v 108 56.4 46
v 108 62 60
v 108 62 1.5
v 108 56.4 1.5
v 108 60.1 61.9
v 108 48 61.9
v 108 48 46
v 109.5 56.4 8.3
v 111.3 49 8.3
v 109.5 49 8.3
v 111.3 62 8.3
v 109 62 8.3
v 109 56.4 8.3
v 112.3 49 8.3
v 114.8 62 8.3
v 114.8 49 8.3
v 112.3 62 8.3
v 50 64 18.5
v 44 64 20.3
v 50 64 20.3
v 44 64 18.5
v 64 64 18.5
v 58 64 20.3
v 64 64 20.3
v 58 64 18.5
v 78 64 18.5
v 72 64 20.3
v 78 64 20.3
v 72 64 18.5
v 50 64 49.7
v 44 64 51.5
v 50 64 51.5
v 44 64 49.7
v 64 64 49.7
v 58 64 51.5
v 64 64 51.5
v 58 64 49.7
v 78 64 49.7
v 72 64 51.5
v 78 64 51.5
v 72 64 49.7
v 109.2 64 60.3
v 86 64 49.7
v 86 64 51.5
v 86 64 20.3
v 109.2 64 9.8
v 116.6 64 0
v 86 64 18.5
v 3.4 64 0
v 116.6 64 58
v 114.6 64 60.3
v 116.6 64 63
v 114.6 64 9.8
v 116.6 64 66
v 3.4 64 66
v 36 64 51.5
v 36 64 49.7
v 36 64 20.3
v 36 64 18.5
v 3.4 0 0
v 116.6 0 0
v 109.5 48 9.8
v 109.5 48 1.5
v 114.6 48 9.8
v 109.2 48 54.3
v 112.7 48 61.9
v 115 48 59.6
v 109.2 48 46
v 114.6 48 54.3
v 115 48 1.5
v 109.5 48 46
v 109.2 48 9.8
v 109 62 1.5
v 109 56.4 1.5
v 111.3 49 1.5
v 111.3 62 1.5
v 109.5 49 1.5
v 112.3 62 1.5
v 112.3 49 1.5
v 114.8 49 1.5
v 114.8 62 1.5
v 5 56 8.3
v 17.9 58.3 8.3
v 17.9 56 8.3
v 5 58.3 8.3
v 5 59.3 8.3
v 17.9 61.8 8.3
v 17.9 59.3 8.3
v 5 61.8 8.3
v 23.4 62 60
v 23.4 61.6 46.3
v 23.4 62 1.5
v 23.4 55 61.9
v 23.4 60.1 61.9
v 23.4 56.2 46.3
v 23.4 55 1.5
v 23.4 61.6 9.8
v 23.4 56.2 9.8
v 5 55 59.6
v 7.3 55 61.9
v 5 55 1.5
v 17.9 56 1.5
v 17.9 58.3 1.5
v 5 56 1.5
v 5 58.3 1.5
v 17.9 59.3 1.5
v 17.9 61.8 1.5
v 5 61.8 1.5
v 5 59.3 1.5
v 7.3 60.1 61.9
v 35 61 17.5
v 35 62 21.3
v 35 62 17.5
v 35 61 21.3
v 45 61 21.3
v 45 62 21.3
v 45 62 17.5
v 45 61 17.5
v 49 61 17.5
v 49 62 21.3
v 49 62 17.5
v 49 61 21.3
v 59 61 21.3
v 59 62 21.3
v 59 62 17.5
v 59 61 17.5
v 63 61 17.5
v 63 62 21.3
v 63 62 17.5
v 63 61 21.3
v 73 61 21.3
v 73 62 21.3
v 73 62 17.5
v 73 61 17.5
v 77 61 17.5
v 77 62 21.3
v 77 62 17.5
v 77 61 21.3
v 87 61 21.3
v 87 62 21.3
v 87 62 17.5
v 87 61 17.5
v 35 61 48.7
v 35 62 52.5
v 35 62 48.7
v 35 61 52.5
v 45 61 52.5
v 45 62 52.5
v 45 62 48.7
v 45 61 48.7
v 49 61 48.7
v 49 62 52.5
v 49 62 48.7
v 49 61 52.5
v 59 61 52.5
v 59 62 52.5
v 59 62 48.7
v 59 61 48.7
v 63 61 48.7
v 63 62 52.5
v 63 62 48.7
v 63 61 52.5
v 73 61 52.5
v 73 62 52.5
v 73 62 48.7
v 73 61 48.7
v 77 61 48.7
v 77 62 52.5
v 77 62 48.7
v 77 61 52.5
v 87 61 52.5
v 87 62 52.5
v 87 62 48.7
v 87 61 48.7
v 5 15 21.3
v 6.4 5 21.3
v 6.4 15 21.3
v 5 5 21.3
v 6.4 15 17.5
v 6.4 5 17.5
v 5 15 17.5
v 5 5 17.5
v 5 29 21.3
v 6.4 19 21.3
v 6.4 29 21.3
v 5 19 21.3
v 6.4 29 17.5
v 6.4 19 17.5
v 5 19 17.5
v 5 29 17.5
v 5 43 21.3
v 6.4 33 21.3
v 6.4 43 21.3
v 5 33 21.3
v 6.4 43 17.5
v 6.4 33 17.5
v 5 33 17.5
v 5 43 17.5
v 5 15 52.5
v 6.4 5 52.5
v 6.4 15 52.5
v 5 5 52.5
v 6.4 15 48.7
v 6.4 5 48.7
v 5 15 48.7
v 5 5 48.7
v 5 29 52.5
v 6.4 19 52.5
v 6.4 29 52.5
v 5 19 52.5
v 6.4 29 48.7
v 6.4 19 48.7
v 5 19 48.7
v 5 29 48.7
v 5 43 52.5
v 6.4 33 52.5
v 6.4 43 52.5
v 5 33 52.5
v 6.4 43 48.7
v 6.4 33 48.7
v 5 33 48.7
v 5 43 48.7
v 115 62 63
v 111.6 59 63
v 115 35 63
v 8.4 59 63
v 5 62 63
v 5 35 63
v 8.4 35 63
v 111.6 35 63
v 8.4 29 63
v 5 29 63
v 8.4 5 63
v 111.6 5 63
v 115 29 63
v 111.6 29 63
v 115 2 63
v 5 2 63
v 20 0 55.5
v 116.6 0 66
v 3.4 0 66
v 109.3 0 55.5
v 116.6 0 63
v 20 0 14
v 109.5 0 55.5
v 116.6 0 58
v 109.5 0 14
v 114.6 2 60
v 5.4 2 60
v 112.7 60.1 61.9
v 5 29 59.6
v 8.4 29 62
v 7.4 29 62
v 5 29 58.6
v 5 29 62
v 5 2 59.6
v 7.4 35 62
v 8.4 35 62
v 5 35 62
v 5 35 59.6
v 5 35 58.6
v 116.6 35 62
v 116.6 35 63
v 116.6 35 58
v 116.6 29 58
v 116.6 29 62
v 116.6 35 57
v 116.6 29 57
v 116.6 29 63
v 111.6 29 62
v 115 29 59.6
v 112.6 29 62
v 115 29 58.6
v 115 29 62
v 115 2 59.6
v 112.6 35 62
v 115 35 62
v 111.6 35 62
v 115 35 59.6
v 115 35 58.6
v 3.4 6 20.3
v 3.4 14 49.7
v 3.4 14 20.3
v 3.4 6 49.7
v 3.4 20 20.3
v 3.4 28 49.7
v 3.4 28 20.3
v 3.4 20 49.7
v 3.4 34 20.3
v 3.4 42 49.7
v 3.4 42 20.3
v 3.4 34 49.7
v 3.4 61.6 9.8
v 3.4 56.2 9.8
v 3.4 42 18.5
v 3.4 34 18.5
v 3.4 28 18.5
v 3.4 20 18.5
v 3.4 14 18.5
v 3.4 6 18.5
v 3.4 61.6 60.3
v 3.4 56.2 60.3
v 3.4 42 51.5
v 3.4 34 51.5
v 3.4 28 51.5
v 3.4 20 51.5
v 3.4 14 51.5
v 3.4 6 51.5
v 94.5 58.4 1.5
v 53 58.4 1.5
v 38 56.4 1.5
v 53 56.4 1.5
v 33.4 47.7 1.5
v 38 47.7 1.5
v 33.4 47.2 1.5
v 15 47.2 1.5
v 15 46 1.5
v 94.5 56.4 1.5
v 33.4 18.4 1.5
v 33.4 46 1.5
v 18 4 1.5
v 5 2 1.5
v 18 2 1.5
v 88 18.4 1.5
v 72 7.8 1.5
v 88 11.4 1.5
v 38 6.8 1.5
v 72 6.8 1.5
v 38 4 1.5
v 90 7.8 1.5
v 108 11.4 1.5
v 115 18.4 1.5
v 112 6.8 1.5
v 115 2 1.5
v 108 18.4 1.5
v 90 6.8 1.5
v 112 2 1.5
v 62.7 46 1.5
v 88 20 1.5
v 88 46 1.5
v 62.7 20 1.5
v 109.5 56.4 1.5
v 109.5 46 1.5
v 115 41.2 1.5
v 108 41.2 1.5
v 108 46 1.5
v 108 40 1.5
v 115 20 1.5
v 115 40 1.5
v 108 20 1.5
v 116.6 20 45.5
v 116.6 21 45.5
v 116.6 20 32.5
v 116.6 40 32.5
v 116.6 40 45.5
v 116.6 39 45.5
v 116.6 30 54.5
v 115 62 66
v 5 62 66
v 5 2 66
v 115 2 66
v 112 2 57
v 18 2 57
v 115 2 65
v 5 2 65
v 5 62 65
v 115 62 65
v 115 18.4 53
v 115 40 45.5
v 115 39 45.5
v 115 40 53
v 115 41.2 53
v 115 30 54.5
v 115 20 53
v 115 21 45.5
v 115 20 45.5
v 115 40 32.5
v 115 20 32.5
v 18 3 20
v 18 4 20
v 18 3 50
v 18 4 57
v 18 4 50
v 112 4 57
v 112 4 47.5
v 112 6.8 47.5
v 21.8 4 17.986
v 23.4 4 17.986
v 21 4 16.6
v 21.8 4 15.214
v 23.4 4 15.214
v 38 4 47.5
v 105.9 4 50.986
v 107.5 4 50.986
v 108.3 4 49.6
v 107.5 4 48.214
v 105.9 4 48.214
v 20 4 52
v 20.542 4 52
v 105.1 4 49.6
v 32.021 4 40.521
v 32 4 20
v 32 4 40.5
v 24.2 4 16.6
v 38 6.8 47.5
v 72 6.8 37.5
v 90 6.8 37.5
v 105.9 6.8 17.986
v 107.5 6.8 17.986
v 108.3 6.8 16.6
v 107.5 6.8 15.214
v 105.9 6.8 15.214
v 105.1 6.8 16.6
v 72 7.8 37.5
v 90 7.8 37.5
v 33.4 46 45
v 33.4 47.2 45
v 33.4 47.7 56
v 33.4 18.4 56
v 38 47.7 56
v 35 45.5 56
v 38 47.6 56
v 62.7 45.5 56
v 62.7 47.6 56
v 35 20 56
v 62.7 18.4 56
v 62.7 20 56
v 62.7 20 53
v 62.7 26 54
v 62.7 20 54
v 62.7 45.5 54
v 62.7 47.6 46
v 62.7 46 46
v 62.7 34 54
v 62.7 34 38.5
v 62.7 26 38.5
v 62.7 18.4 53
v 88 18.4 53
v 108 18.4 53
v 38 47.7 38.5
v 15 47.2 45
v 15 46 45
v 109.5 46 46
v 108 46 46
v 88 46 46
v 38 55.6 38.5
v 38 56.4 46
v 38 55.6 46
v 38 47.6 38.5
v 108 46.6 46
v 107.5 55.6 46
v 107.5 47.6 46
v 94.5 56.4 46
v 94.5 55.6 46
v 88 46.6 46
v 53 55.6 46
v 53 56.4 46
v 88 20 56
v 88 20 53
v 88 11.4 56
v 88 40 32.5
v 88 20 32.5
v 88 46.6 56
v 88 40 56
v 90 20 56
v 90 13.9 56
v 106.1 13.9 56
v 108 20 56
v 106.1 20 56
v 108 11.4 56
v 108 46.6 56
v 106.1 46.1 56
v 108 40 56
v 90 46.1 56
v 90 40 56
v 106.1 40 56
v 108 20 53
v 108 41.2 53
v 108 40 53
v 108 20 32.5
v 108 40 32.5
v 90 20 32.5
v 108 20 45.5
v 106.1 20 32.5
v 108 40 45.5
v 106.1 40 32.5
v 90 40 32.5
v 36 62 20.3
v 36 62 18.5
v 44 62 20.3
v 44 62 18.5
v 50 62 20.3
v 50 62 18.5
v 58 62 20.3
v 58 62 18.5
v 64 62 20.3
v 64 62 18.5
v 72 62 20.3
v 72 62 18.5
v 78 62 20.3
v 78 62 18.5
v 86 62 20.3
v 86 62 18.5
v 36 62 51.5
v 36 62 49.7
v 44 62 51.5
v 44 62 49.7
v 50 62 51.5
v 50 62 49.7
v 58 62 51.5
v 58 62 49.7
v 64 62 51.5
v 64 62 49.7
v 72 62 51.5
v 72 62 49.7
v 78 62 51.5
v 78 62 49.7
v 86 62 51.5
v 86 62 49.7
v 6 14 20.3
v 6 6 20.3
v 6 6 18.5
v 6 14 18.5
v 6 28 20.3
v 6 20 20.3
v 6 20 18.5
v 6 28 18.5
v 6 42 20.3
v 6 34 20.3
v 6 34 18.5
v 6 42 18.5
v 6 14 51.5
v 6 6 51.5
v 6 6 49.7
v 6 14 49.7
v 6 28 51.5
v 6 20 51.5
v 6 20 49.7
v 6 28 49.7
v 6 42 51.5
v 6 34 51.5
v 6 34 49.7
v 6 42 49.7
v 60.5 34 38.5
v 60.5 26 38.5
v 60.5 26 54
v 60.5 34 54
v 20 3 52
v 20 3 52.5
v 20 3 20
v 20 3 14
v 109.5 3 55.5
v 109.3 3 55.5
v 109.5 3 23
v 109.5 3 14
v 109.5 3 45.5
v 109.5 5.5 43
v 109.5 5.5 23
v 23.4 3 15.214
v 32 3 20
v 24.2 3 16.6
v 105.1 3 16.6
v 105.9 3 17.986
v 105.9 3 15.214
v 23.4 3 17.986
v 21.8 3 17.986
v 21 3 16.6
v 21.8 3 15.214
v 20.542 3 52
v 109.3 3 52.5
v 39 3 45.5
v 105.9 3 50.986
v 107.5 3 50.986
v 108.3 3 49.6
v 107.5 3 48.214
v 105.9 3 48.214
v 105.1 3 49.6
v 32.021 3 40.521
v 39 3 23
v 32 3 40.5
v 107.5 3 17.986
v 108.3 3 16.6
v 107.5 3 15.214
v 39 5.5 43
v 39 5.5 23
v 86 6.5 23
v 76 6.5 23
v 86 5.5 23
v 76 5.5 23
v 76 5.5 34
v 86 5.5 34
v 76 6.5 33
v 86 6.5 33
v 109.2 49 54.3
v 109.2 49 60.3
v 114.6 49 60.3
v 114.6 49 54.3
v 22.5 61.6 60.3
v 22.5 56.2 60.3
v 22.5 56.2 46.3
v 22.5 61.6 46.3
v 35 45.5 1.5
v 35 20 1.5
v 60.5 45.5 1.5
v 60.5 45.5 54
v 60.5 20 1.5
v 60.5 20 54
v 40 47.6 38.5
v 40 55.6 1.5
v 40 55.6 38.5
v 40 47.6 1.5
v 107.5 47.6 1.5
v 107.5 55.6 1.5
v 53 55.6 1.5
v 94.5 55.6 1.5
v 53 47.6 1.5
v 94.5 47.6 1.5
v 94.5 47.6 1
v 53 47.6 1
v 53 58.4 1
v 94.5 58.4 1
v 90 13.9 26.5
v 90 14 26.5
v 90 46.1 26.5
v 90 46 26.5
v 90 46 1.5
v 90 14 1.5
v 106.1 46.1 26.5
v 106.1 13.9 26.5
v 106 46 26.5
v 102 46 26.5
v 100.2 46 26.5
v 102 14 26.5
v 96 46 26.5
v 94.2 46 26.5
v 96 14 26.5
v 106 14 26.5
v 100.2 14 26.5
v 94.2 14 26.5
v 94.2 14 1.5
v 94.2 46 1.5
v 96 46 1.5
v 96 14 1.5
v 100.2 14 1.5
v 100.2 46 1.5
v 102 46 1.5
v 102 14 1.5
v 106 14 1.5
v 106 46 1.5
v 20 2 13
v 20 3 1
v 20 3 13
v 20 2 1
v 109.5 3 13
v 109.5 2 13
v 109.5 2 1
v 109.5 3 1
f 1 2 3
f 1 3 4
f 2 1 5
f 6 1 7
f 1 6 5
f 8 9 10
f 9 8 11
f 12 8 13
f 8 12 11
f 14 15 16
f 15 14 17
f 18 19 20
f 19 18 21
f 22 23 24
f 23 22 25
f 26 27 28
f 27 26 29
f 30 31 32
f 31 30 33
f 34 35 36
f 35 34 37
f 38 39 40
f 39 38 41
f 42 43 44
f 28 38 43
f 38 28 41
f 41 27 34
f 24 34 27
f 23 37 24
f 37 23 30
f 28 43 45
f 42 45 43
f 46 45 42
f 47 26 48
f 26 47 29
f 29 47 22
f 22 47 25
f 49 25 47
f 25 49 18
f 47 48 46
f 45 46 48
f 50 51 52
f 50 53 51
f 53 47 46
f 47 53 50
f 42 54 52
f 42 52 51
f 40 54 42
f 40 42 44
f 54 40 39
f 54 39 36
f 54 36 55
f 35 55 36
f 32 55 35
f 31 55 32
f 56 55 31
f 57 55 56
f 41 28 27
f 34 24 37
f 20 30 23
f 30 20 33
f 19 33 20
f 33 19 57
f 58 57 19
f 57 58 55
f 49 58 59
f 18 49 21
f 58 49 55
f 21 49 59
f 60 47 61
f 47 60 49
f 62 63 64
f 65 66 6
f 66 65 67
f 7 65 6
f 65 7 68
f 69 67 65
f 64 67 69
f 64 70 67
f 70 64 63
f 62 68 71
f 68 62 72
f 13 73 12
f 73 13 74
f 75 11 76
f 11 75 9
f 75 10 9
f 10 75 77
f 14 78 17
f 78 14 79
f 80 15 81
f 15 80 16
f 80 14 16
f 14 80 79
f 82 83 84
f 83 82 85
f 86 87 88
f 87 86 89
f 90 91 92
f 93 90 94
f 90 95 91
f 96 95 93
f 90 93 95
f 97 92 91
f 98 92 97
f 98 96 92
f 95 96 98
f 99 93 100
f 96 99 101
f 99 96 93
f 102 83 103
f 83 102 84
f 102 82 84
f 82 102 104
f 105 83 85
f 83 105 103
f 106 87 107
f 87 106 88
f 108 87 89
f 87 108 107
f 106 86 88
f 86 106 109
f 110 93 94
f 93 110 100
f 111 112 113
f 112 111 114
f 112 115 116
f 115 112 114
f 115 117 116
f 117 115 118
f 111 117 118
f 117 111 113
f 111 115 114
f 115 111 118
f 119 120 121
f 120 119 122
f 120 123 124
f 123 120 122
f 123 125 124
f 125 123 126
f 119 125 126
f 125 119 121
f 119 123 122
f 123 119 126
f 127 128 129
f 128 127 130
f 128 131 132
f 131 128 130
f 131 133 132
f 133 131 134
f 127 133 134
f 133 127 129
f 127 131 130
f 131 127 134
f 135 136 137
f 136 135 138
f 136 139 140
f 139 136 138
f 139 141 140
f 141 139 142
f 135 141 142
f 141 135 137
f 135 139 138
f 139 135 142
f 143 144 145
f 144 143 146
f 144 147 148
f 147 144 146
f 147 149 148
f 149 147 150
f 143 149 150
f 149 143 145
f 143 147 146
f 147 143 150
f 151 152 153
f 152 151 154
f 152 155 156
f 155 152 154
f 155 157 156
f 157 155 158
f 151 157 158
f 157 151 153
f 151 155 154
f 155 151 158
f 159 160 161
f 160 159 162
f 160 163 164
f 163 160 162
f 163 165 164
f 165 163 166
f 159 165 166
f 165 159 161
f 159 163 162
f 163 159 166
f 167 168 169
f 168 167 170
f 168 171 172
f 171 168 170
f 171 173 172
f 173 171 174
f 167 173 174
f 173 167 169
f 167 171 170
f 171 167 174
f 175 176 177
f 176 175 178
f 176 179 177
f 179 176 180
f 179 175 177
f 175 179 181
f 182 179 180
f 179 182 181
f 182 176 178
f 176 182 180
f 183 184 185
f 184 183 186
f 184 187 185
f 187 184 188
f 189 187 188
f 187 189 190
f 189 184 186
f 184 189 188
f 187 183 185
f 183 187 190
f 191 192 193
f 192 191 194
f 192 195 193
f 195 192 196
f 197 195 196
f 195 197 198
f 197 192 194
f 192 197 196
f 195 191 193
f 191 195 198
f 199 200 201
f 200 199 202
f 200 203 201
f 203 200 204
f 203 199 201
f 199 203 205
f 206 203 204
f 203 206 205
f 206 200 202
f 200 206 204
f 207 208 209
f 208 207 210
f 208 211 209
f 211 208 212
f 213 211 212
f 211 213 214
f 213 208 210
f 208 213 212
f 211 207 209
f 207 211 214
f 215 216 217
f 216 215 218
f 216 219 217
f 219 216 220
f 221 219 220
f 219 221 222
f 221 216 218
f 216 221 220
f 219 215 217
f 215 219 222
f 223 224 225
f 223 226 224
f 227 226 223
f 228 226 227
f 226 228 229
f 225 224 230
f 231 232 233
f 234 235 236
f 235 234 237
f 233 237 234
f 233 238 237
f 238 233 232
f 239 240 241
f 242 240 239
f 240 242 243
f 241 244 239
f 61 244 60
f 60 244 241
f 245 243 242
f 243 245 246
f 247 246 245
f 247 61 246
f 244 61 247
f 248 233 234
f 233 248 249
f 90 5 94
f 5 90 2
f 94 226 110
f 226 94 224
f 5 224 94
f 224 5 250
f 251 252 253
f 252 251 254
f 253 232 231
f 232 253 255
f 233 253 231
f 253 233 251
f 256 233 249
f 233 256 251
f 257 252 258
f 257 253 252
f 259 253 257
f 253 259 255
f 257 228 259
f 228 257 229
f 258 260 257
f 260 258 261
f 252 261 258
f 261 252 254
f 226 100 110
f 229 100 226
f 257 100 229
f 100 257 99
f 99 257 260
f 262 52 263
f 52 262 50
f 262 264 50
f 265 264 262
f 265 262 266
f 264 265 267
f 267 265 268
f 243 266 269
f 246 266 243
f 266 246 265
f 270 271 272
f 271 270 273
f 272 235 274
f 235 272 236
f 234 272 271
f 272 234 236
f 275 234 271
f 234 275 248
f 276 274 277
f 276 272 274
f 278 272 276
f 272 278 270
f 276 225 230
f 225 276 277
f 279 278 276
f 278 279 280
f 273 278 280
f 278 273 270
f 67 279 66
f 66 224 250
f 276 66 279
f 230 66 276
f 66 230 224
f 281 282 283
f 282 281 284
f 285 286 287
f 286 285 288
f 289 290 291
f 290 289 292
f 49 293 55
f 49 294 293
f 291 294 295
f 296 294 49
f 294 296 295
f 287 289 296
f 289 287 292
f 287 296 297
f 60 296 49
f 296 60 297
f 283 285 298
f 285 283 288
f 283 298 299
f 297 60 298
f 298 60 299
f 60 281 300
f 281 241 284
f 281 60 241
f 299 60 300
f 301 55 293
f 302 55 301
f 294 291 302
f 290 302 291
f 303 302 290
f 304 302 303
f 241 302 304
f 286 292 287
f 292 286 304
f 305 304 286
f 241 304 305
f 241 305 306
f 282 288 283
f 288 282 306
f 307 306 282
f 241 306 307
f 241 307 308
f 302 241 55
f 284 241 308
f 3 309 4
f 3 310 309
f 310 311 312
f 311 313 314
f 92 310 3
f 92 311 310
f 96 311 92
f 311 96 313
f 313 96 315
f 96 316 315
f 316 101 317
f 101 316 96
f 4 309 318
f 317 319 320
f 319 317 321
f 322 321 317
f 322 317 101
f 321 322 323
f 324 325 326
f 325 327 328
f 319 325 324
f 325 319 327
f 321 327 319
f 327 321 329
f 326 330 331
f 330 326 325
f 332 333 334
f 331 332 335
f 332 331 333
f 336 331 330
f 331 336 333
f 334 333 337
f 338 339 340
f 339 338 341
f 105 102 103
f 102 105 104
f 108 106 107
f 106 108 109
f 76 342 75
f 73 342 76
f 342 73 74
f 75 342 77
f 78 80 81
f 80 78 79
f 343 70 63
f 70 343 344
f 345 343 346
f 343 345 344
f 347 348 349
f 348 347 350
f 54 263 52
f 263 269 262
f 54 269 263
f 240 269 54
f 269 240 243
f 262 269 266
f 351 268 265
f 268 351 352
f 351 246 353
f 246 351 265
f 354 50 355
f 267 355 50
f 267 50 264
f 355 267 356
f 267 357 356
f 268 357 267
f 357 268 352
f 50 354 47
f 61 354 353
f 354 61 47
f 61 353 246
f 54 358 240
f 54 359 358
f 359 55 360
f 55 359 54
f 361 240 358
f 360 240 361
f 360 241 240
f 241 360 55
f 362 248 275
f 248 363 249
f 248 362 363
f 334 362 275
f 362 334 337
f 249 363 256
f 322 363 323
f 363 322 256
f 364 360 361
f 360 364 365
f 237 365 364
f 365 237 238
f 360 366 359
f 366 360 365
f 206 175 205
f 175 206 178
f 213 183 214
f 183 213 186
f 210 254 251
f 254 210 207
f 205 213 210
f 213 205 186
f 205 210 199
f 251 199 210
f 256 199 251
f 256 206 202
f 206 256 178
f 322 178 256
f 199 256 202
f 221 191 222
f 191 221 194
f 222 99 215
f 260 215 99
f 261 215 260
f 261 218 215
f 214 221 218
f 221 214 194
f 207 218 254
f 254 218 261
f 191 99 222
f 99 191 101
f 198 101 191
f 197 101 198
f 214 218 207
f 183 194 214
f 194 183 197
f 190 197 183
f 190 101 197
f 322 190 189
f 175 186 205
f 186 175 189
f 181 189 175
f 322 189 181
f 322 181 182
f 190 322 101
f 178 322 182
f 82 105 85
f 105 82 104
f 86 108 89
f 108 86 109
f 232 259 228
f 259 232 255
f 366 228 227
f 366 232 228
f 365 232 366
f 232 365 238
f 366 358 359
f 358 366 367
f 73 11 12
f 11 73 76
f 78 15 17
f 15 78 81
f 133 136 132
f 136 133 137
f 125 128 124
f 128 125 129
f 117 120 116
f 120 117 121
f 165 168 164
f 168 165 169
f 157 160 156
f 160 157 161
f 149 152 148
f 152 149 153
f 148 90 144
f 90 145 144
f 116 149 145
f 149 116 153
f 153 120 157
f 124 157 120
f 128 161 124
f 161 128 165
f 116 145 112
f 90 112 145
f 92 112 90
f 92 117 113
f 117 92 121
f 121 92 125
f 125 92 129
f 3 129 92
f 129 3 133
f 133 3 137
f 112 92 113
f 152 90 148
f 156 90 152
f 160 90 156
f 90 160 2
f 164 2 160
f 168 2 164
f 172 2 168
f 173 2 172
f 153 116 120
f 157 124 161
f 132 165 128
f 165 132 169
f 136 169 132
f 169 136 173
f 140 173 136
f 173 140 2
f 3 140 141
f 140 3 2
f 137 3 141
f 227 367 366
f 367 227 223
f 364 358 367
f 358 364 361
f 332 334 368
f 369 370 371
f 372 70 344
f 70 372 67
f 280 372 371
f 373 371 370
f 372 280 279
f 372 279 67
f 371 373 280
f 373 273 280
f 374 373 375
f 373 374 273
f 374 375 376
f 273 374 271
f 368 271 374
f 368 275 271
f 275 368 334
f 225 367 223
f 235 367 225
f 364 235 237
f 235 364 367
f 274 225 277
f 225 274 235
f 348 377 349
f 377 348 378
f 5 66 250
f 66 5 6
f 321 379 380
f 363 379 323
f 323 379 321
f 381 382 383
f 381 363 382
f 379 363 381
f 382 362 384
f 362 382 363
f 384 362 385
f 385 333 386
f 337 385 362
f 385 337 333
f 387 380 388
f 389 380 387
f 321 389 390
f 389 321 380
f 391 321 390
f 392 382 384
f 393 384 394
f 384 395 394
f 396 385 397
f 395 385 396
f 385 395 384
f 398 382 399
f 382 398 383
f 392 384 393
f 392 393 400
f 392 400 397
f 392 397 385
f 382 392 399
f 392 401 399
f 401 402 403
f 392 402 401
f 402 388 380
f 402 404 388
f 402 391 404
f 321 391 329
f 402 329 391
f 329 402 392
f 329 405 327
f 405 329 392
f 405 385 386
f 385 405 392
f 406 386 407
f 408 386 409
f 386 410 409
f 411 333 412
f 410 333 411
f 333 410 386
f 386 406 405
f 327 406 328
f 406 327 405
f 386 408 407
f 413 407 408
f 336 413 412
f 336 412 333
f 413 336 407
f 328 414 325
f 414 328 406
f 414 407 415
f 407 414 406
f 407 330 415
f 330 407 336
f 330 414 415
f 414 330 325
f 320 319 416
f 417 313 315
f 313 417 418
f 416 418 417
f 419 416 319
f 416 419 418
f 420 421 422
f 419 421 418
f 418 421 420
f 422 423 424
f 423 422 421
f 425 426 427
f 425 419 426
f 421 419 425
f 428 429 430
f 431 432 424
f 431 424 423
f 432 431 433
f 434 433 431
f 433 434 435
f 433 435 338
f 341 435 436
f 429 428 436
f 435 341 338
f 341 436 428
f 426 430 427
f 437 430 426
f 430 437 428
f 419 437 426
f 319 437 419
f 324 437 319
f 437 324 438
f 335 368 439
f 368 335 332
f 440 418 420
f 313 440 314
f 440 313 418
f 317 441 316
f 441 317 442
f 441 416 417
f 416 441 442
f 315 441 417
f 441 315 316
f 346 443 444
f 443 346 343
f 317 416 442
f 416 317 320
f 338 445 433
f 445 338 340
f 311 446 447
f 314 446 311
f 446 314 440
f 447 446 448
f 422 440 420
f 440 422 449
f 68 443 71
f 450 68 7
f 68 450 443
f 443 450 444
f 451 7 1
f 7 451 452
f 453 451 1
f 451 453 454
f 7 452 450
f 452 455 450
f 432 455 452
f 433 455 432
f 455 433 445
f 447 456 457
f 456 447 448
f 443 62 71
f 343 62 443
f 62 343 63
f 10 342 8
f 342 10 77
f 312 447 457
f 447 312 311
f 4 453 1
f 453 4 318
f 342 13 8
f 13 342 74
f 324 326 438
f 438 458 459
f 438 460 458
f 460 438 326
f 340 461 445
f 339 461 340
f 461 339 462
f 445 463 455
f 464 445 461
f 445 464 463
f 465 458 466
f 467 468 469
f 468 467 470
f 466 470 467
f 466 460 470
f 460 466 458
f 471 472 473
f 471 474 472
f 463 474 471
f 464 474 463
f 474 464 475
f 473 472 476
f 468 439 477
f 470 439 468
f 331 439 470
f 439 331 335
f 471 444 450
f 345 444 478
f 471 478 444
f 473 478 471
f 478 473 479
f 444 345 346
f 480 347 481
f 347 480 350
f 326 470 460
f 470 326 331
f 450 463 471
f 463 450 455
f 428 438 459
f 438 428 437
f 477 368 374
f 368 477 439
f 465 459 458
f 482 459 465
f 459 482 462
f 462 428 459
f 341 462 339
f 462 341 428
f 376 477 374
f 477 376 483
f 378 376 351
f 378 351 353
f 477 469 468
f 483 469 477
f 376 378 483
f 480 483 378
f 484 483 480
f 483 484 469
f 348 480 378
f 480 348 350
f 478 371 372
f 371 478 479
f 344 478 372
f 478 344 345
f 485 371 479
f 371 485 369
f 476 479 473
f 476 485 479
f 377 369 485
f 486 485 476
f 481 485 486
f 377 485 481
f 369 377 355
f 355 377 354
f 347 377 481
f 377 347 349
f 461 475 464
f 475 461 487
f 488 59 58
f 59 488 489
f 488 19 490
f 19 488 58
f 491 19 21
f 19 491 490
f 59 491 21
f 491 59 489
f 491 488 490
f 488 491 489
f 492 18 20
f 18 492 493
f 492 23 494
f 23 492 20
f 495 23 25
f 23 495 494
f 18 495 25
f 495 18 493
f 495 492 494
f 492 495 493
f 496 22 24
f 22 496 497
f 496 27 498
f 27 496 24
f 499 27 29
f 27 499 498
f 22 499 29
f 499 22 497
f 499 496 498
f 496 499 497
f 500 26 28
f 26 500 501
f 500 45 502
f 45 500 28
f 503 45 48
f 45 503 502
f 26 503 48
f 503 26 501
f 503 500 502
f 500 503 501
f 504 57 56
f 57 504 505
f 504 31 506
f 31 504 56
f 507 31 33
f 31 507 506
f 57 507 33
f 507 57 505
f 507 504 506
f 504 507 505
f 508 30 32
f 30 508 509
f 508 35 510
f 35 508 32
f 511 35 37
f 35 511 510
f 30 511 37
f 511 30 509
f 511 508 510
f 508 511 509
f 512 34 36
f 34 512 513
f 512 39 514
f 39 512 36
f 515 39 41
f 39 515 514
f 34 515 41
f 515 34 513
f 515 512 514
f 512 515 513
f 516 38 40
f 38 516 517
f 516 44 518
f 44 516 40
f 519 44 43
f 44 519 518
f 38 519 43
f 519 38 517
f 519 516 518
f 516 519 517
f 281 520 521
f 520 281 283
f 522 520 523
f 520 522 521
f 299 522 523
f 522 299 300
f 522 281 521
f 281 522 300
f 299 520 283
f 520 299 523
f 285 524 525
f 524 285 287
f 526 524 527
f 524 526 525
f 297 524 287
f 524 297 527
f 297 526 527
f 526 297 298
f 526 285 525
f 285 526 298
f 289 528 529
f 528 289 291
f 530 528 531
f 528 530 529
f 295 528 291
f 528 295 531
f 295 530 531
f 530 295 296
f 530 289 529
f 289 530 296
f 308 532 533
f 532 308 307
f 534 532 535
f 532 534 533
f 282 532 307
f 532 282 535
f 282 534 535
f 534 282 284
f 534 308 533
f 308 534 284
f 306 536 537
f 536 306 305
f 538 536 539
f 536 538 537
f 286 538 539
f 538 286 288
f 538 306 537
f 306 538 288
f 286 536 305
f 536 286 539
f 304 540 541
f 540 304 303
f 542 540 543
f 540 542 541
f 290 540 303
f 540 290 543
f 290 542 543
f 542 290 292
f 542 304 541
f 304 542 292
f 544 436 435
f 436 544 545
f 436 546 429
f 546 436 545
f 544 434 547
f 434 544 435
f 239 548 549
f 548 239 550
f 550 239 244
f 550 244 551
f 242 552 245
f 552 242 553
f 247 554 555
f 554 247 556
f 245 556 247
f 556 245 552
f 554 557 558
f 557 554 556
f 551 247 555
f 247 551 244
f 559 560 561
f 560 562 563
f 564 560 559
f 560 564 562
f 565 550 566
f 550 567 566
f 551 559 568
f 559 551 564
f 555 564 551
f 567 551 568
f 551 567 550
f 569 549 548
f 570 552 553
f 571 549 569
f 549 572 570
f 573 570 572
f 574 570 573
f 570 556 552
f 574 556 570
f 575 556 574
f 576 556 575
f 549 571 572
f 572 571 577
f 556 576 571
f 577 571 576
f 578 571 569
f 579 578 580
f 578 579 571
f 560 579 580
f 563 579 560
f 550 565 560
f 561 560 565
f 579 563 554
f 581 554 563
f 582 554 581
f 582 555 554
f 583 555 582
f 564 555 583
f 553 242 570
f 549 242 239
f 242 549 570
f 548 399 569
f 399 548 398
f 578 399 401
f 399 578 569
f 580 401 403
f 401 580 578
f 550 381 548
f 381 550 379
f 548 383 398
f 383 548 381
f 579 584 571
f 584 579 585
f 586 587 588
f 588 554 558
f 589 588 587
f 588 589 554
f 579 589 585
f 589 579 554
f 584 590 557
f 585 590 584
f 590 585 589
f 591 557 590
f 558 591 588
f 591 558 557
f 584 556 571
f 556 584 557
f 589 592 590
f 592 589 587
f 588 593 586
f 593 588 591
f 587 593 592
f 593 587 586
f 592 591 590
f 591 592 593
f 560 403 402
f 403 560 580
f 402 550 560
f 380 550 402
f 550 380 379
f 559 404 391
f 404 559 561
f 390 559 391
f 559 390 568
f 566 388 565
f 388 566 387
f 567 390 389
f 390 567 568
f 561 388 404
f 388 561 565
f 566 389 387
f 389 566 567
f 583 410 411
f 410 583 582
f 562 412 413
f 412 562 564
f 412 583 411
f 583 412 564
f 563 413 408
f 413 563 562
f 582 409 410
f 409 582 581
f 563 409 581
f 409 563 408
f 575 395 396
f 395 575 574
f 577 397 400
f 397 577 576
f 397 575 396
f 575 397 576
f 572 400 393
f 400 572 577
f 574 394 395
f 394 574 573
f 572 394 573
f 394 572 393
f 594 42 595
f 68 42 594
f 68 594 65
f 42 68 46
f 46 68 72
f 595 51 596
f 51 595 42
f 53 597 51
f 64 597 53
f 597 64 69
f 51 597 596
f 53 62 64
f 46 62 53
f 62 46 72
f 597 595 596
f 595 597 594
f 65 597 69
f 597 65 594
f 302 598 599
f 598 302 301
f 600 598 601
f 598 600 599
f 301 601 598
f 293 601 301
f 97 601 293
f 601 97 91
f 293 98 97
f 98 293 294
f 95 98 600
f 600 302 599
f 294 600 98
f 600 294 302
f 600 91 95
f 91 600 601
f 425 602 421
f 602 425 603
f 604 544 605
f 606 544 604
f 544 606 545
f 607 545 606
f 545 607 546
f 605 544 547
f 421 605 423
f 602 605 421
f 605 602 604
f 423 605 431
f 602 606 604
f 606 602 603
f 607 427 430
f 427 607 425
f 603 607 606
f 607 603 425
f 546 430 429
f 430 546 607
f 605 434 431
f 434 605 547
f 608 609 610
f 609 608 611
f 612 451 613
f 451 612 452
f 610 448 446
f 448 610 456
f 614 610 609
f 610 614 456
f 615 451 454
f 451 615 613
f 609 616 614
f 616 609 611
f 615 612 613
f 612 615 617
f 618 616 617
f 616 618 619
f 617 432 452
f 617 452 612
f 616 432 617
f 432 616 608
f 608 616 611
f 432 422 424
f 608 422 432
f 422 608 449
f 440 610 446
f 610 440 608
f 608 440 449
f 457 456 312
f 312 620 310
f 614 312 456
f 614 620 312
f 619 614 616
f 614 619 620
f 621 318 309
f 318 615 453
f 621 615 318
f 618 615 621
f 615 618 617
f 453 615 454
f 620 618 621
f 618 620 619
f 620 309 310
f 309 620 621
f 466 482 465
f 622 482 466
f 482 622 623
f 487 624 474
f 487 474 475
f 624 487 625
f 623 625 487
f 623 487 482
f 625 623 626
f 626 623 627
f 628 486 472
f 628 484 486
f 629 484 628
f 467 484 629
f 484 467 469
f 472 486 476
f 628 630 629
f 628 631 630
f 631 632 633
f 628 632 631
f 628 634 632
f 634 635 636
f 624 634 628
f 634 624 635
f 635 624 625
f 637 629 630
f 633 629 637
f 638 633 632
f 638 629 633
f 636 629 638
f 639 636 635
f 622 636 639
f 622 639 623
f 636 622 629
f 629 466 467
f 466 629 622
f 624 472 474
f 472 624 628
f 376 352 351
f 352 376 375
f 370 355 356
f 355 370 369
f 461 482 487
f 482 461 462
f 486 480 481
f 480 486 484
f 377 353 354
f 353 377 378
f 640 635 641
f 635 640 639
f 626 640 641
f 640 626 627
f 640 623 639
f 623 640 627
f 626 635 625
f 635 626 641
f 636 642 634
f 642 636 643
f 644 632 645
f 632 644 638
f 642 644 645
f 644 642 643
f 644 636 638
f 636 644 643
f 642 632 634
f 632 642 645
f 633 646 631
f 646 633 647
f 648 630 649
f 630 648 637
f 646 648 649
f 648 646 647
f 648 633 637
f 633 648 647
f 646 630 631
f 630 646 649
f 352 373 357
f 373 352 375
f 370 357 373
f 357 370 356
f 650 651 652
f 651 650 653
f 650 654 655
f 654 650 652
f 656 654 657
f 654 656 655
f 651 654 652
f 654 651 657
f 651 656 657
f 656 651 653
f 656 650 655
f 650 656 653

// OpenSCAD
difference() {
    
    triFaces = [[0,1,3,2], [4,5,1,0],
        [2,3,5,4], [5,3,1], [4,0,2]];
    
    union() {
        translate([3.4,0,0]) cube([113.2,64,1.5]);
        translate([3.4,0,0]) cube([113.2,2,66]);
        translate([3.4,0,0]) cube([1.6,64,66]);
        translate([3.4,62,0]) cube([113.2,2,66]);
        translate([115,0,0]) cube([1.6,64,66]);
        
        //shutter fit 1
        translate([108,48,8.3]) cube([7.8,16,53.6]);
        translate([108,48,0]) difference() {
               cube([7.8,16,8.3]);
            translate([1,1,0]) cube([2.3,13.5,8.3]);
            translate([4.3,1,0]) cube([2.5,13.5,8.3]);
        }
        //shutter fit 2
        translate([3.4,55,0]) union() {
            translate([0,0,8.3]) cube([20,7.8,53.6]);
            translate([0,0,0]) difference() {
                   cube([20,7.8,8.3]);
                translate([1,1,0]) cube([13.5,2.3,8.3]);
                translate([1,4.3,0]) cube([13.5,2.5,8.3]);
            }
        }
        //reflective shield fit 1
        translate([20,64,0]) {
            translate([20,0,18.5]) {
                translate([-5,-3,-1]) cube([10,3,3.8]);
                translate([9, -3,-1]) cube([10,3,3.8]);
                translate([23,-3,-1]) cube([10,3,3.8]);
                translate([37,-3,-1]) cube([10,3,3.8]);
            }
            translate([20,0,49.7]) {
                translate([-5,-3,-1]) cube([10,3,3.8]);
                translate([9, -3,-1]) cube([10,3,3.8]);
                translate([23,-3,-1]) cube([10,3,3.8]);
                translate([37,-3,-1]) cube([10,3,3.8]);
            }
        }    
        //reflective shield fit 2
        translate([3.4,10,0]) {
            translate([0,0,18.5]) {
                translate([-0,-5,-1]) cube([3,10,3.8]);
                translate([-0,9, -1]) cube([3,10,3.8]);
                translate([-0,23,-1]) cube([3,10,3.8]);
            }
            translate([0,0,49.7]) {
                translate([-0,-5,-1]) cube([3,10,3.8]);
                translate([-0,9, -1]) cube([3,10,3.8]);
                translate([-0,23,-1]) cube([3,10,3.8]);
            }
        }   
        
        translate([3.4,0,58]) intersection() {
            cube([113.2,5,5]);
            rotate([45,0,0]) cube([120,20,20]);
        }
        translate([3.4,59,58]) intersection() {
            cube([113.2,5,5]);
            translate([0,0,5]) rotate([-45,0,0]) cube([114,20,20]);
        }
        
        translate([3.4,0,58]) intersection() {
            cube([5,29,5]);
            rotate([0,-45,0]) cube([20,70,20]);
        }
        translate([3.4,29,57]) intersection() {
            cube([5,6,5]);
            rotate([0,-45,0]) cube([20,70,20]);
        }
        translate([3.4,35,58]) intersection() {
            cube([5,29,5]);
            rotate([0,-45,0]) cube([20,70,20]);
        }
        
        translate([111.6,0,58]) intersection() {
            cube([5,29,5]);
            translate([0,0,5]) rotate([0,45,0]) cube([20,64,20]);
        }
        translate([111.6,29,57]) intersection() {
            cube([5,6,5]);
            translate([0,0,5]) rotate([0,45,0]) cube([20,64,20]);
        }
        translate([111.6,35,58]) intersection() {
            cube([5,29,5]);
            translate([0,0,5]) rotate([0,45,0]) cube([20,64,20]);
        }
        
        
        //thicker wall for e-ink display
        translate([18,2,0]) cube([94,2,57]);
        translate([38,4,0]) cube([74,2.8,47.5]);
        translate([72,4,0]) cube([18,3.8,37.5]);
        
        //PCB case holder
        translate([33.4,18.4,1.5]) cube([29.3,29.3,54.5]);
        
        //TP4056 lock
        translate([15,46,0]) cube([25,1.2,45]);
        
        //Battery holder
        translate([38,46.0,1]) cube([71.5,10.4,45]);
        
        //Lensblokje holder
        translate([88,11.4,1]) cube([20,35.2,55]);
        
        translate([33.4,18.4,1]) cube([82,1.6,52]);
        translate([93.4,40,1]) cube([22,1.2,52]);
    }
    
    //exclude shutter fit 1
    translate([108,49,8.3]) translate([1.2,0,1.5]) cube([5.4,15,50.5]);
    translate([108,48,8.3]) translate([1.2,0,1.5]) cube([5.4,16,44.5]);
    //exclude shutter fit 2
    translate([3.4,55,8.3]) translate([0,1.2,1.5]) cube([19.1,5.4,50.5]);
    translate([3.4,55,8.3]) translate([0,1.2,1.5]) cube([20.1,5.4,36.5]);
    
    //reflective shield fit 1
    translate([20,64,0]) {
        translate([20,0,18.5]) {
            translate([-4,-2,0]) cube([8,4,1.8]);
            translate([10,-2,0]) cube([8,4,1.8]);
            translate([24,-2,0]) cube([8,4,1.8]);
            translate([38,-2,0]) cube([8,4,1.8]);
        }
        translate([20,0,49.7]) {
            translate([-4,-2,0]) cube([8,4,1.8]);
            translate([10,-2,0]) cube([8,4,1.8]);
            translate([24,-2,0]) cube([8,4,1.8]);
            translate([38,-2,0]) cube([8,4,1.8]);
        }
    }    
        //reflective shield fit 2
    translate([4,10,0]) {
        translate([0,0,18.5]) {
            translate([-2,-4,0]) cube([4,8,1.8]);
            translate([-2,10,0]) cube([4,8,1.8]);
            translate([-2,24,0]) cube([4,8,1.8]);
        }
        translate([0,0,49.7]) {
            translate([-2,-4,0]) cube([4,8,1.8]);
            translate([-2,10,0]) cube([4,8,1.8]);
            translate([-2,24,0]) cube([4,8,1.8]);
        }
    }    
    
    //Solar panel
    translate([5,2,63]) cube([110,60,2]);
    
    //PCB case exclude
    translate([35,20,1.5]) cube([25.5,25.5,58]);
    translate([50,20,54]) cube([25.5,25.5,5]);
    
    tri1Points = [
        [ 0, 0, 0], [140, 0, 0], 
        [ 0, 8, 0], [140, 8, 0],
        [ 0, 4, 4], [140, 4, 4]];
    //PT sight
    translate([47,26,38.5]) {
        cube([140,8,5]); //PT sight
        cube([25,8,50]); //space for shield soldering
        translate([0,0,5]) polyhedron( tri1Points, triFaces );
    }
    
    
    //Battery exclude
    translate([40,47.6,1.5]) cube([67.5,8,58]);
    translate([38,47.6,38.5]) cube([69.5,8,21]);
    translate([53,47.6,1]) cube([41.5,10.8,58]);
    
    //Lensblokje exclude
    translate([90,13.9,26.5]) cube([16.1,32.2,30]);
    translate([88,20,32.5]) cube([60,20,13]);
    translate([88,20,32.5]) cube([20,20,24]);
    translate([90,14,1.5]) cube([4.2,32,31]);
    translate([96,14,1.5]) cube([4.2,32,31]);
    translate([102,14,1.5]) cube([4,32,31]);
    tri2Points = [
        [ 0, 0, 0], [60, 0, 0], 
        [ 0, 20, 0], [60, 20, 0],
        [ 0, 10, 10], [60, 10, 10]];
    translate([88,20,44.5]) polyhedron( tri2Points, triFaces );
    
    
    translate([20,2,1]) cube([89.5,1,12]);
    //E-ink exclude
    translate([20,0,14]) {
        difference() {
            cube([89.5,3,41.5]);
            translate([0,0,41.5]) rotate([-45,0,0]) cube([89.3,5,5]);
        }
        //cube([89,3,38]);
        translate([0,0,6]) cube([12,9,20.5]);
        translate([0,0,28-13.5]) intersection() {
            cube([17,9,23.5]);
            rotate([0,-45,0]) cube([17,9,17]);
        }
        translate([-12,3,6]) cube([12,8,20]);
        
        translate([-12,3,26]) intersection() {
            cube([12,8,30]);
            rotate([0,45,0]) cube([17,8,17]);
        }
        difference() {
            translate([19,0,9]) cube([70.5,5.5,22.5]);
            translate([19,3,31.5]) rotate([-45,0,0]) cube([70.5,5,5]);
        }
        
        difference() {
            translate([56,1,9]) cube([10,5.5,12.5]);
            translate([56,4,21.5]) rotate([-45,0,0]) cube([10,5,5]);
        }
        
        //screws
        translate([2.6, 0, 2.6]) rotate([-90,0,0]) cylinder(10,1.6,1.6,false);
        translate([86.7, 0, 2.6]) rotate([-90,0,0]) cylinder(10,1.6,1.6,false);
        translate([86.7, 0, 35.6]) rotate([-90,0,0]) cylinder(10,1.6,1.6,false);
        

        
    }
}


        
